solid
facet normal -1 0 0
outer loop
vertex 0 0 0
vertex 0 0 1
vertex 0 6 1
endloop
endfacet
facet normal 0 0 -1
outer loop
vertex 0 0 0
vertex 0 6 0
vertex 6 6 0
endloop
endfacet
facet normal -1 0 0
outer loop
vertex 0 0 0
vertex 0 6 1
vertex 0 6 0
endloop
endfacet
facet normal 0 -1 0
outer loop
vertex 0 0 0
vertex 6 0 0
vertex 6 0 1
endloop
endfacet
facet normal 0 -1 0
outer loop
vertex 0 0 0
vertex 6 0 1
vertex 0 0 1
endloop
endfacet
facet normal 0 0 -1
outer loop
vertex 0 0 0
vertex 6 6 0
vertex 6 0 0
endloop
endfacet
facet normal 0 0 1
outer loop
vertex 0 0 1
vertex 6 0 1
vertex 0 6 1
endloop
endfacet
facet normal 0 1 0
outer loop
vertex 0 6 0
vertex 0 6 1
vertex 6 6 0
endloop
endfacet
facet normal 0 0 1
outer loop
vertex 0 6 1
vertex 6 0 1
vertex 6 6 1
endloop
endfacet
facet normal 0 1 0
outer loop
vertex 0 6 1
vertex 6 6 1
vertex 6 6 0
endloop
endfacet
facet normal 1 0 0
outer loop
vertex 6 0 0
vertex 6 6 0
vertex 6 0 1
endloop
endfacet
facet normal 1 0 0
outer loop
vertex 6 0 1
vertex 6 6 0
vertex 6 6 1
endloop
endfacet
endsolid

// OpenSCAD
/* Warning, this is a very basic generator with a lot of approximation 
input data : [VQFN, 3FX, 6x6x1.0mm, 33, , A, C04-00298A]
generated by com.zoubworld.electronics.cad.model3d.Basic
Date : Sun Feb 15 10:50:48 CET 2026
*/

//body
color("black")
translate([0,0,0])
cube([6.0,6.0,1.0], center=false);
